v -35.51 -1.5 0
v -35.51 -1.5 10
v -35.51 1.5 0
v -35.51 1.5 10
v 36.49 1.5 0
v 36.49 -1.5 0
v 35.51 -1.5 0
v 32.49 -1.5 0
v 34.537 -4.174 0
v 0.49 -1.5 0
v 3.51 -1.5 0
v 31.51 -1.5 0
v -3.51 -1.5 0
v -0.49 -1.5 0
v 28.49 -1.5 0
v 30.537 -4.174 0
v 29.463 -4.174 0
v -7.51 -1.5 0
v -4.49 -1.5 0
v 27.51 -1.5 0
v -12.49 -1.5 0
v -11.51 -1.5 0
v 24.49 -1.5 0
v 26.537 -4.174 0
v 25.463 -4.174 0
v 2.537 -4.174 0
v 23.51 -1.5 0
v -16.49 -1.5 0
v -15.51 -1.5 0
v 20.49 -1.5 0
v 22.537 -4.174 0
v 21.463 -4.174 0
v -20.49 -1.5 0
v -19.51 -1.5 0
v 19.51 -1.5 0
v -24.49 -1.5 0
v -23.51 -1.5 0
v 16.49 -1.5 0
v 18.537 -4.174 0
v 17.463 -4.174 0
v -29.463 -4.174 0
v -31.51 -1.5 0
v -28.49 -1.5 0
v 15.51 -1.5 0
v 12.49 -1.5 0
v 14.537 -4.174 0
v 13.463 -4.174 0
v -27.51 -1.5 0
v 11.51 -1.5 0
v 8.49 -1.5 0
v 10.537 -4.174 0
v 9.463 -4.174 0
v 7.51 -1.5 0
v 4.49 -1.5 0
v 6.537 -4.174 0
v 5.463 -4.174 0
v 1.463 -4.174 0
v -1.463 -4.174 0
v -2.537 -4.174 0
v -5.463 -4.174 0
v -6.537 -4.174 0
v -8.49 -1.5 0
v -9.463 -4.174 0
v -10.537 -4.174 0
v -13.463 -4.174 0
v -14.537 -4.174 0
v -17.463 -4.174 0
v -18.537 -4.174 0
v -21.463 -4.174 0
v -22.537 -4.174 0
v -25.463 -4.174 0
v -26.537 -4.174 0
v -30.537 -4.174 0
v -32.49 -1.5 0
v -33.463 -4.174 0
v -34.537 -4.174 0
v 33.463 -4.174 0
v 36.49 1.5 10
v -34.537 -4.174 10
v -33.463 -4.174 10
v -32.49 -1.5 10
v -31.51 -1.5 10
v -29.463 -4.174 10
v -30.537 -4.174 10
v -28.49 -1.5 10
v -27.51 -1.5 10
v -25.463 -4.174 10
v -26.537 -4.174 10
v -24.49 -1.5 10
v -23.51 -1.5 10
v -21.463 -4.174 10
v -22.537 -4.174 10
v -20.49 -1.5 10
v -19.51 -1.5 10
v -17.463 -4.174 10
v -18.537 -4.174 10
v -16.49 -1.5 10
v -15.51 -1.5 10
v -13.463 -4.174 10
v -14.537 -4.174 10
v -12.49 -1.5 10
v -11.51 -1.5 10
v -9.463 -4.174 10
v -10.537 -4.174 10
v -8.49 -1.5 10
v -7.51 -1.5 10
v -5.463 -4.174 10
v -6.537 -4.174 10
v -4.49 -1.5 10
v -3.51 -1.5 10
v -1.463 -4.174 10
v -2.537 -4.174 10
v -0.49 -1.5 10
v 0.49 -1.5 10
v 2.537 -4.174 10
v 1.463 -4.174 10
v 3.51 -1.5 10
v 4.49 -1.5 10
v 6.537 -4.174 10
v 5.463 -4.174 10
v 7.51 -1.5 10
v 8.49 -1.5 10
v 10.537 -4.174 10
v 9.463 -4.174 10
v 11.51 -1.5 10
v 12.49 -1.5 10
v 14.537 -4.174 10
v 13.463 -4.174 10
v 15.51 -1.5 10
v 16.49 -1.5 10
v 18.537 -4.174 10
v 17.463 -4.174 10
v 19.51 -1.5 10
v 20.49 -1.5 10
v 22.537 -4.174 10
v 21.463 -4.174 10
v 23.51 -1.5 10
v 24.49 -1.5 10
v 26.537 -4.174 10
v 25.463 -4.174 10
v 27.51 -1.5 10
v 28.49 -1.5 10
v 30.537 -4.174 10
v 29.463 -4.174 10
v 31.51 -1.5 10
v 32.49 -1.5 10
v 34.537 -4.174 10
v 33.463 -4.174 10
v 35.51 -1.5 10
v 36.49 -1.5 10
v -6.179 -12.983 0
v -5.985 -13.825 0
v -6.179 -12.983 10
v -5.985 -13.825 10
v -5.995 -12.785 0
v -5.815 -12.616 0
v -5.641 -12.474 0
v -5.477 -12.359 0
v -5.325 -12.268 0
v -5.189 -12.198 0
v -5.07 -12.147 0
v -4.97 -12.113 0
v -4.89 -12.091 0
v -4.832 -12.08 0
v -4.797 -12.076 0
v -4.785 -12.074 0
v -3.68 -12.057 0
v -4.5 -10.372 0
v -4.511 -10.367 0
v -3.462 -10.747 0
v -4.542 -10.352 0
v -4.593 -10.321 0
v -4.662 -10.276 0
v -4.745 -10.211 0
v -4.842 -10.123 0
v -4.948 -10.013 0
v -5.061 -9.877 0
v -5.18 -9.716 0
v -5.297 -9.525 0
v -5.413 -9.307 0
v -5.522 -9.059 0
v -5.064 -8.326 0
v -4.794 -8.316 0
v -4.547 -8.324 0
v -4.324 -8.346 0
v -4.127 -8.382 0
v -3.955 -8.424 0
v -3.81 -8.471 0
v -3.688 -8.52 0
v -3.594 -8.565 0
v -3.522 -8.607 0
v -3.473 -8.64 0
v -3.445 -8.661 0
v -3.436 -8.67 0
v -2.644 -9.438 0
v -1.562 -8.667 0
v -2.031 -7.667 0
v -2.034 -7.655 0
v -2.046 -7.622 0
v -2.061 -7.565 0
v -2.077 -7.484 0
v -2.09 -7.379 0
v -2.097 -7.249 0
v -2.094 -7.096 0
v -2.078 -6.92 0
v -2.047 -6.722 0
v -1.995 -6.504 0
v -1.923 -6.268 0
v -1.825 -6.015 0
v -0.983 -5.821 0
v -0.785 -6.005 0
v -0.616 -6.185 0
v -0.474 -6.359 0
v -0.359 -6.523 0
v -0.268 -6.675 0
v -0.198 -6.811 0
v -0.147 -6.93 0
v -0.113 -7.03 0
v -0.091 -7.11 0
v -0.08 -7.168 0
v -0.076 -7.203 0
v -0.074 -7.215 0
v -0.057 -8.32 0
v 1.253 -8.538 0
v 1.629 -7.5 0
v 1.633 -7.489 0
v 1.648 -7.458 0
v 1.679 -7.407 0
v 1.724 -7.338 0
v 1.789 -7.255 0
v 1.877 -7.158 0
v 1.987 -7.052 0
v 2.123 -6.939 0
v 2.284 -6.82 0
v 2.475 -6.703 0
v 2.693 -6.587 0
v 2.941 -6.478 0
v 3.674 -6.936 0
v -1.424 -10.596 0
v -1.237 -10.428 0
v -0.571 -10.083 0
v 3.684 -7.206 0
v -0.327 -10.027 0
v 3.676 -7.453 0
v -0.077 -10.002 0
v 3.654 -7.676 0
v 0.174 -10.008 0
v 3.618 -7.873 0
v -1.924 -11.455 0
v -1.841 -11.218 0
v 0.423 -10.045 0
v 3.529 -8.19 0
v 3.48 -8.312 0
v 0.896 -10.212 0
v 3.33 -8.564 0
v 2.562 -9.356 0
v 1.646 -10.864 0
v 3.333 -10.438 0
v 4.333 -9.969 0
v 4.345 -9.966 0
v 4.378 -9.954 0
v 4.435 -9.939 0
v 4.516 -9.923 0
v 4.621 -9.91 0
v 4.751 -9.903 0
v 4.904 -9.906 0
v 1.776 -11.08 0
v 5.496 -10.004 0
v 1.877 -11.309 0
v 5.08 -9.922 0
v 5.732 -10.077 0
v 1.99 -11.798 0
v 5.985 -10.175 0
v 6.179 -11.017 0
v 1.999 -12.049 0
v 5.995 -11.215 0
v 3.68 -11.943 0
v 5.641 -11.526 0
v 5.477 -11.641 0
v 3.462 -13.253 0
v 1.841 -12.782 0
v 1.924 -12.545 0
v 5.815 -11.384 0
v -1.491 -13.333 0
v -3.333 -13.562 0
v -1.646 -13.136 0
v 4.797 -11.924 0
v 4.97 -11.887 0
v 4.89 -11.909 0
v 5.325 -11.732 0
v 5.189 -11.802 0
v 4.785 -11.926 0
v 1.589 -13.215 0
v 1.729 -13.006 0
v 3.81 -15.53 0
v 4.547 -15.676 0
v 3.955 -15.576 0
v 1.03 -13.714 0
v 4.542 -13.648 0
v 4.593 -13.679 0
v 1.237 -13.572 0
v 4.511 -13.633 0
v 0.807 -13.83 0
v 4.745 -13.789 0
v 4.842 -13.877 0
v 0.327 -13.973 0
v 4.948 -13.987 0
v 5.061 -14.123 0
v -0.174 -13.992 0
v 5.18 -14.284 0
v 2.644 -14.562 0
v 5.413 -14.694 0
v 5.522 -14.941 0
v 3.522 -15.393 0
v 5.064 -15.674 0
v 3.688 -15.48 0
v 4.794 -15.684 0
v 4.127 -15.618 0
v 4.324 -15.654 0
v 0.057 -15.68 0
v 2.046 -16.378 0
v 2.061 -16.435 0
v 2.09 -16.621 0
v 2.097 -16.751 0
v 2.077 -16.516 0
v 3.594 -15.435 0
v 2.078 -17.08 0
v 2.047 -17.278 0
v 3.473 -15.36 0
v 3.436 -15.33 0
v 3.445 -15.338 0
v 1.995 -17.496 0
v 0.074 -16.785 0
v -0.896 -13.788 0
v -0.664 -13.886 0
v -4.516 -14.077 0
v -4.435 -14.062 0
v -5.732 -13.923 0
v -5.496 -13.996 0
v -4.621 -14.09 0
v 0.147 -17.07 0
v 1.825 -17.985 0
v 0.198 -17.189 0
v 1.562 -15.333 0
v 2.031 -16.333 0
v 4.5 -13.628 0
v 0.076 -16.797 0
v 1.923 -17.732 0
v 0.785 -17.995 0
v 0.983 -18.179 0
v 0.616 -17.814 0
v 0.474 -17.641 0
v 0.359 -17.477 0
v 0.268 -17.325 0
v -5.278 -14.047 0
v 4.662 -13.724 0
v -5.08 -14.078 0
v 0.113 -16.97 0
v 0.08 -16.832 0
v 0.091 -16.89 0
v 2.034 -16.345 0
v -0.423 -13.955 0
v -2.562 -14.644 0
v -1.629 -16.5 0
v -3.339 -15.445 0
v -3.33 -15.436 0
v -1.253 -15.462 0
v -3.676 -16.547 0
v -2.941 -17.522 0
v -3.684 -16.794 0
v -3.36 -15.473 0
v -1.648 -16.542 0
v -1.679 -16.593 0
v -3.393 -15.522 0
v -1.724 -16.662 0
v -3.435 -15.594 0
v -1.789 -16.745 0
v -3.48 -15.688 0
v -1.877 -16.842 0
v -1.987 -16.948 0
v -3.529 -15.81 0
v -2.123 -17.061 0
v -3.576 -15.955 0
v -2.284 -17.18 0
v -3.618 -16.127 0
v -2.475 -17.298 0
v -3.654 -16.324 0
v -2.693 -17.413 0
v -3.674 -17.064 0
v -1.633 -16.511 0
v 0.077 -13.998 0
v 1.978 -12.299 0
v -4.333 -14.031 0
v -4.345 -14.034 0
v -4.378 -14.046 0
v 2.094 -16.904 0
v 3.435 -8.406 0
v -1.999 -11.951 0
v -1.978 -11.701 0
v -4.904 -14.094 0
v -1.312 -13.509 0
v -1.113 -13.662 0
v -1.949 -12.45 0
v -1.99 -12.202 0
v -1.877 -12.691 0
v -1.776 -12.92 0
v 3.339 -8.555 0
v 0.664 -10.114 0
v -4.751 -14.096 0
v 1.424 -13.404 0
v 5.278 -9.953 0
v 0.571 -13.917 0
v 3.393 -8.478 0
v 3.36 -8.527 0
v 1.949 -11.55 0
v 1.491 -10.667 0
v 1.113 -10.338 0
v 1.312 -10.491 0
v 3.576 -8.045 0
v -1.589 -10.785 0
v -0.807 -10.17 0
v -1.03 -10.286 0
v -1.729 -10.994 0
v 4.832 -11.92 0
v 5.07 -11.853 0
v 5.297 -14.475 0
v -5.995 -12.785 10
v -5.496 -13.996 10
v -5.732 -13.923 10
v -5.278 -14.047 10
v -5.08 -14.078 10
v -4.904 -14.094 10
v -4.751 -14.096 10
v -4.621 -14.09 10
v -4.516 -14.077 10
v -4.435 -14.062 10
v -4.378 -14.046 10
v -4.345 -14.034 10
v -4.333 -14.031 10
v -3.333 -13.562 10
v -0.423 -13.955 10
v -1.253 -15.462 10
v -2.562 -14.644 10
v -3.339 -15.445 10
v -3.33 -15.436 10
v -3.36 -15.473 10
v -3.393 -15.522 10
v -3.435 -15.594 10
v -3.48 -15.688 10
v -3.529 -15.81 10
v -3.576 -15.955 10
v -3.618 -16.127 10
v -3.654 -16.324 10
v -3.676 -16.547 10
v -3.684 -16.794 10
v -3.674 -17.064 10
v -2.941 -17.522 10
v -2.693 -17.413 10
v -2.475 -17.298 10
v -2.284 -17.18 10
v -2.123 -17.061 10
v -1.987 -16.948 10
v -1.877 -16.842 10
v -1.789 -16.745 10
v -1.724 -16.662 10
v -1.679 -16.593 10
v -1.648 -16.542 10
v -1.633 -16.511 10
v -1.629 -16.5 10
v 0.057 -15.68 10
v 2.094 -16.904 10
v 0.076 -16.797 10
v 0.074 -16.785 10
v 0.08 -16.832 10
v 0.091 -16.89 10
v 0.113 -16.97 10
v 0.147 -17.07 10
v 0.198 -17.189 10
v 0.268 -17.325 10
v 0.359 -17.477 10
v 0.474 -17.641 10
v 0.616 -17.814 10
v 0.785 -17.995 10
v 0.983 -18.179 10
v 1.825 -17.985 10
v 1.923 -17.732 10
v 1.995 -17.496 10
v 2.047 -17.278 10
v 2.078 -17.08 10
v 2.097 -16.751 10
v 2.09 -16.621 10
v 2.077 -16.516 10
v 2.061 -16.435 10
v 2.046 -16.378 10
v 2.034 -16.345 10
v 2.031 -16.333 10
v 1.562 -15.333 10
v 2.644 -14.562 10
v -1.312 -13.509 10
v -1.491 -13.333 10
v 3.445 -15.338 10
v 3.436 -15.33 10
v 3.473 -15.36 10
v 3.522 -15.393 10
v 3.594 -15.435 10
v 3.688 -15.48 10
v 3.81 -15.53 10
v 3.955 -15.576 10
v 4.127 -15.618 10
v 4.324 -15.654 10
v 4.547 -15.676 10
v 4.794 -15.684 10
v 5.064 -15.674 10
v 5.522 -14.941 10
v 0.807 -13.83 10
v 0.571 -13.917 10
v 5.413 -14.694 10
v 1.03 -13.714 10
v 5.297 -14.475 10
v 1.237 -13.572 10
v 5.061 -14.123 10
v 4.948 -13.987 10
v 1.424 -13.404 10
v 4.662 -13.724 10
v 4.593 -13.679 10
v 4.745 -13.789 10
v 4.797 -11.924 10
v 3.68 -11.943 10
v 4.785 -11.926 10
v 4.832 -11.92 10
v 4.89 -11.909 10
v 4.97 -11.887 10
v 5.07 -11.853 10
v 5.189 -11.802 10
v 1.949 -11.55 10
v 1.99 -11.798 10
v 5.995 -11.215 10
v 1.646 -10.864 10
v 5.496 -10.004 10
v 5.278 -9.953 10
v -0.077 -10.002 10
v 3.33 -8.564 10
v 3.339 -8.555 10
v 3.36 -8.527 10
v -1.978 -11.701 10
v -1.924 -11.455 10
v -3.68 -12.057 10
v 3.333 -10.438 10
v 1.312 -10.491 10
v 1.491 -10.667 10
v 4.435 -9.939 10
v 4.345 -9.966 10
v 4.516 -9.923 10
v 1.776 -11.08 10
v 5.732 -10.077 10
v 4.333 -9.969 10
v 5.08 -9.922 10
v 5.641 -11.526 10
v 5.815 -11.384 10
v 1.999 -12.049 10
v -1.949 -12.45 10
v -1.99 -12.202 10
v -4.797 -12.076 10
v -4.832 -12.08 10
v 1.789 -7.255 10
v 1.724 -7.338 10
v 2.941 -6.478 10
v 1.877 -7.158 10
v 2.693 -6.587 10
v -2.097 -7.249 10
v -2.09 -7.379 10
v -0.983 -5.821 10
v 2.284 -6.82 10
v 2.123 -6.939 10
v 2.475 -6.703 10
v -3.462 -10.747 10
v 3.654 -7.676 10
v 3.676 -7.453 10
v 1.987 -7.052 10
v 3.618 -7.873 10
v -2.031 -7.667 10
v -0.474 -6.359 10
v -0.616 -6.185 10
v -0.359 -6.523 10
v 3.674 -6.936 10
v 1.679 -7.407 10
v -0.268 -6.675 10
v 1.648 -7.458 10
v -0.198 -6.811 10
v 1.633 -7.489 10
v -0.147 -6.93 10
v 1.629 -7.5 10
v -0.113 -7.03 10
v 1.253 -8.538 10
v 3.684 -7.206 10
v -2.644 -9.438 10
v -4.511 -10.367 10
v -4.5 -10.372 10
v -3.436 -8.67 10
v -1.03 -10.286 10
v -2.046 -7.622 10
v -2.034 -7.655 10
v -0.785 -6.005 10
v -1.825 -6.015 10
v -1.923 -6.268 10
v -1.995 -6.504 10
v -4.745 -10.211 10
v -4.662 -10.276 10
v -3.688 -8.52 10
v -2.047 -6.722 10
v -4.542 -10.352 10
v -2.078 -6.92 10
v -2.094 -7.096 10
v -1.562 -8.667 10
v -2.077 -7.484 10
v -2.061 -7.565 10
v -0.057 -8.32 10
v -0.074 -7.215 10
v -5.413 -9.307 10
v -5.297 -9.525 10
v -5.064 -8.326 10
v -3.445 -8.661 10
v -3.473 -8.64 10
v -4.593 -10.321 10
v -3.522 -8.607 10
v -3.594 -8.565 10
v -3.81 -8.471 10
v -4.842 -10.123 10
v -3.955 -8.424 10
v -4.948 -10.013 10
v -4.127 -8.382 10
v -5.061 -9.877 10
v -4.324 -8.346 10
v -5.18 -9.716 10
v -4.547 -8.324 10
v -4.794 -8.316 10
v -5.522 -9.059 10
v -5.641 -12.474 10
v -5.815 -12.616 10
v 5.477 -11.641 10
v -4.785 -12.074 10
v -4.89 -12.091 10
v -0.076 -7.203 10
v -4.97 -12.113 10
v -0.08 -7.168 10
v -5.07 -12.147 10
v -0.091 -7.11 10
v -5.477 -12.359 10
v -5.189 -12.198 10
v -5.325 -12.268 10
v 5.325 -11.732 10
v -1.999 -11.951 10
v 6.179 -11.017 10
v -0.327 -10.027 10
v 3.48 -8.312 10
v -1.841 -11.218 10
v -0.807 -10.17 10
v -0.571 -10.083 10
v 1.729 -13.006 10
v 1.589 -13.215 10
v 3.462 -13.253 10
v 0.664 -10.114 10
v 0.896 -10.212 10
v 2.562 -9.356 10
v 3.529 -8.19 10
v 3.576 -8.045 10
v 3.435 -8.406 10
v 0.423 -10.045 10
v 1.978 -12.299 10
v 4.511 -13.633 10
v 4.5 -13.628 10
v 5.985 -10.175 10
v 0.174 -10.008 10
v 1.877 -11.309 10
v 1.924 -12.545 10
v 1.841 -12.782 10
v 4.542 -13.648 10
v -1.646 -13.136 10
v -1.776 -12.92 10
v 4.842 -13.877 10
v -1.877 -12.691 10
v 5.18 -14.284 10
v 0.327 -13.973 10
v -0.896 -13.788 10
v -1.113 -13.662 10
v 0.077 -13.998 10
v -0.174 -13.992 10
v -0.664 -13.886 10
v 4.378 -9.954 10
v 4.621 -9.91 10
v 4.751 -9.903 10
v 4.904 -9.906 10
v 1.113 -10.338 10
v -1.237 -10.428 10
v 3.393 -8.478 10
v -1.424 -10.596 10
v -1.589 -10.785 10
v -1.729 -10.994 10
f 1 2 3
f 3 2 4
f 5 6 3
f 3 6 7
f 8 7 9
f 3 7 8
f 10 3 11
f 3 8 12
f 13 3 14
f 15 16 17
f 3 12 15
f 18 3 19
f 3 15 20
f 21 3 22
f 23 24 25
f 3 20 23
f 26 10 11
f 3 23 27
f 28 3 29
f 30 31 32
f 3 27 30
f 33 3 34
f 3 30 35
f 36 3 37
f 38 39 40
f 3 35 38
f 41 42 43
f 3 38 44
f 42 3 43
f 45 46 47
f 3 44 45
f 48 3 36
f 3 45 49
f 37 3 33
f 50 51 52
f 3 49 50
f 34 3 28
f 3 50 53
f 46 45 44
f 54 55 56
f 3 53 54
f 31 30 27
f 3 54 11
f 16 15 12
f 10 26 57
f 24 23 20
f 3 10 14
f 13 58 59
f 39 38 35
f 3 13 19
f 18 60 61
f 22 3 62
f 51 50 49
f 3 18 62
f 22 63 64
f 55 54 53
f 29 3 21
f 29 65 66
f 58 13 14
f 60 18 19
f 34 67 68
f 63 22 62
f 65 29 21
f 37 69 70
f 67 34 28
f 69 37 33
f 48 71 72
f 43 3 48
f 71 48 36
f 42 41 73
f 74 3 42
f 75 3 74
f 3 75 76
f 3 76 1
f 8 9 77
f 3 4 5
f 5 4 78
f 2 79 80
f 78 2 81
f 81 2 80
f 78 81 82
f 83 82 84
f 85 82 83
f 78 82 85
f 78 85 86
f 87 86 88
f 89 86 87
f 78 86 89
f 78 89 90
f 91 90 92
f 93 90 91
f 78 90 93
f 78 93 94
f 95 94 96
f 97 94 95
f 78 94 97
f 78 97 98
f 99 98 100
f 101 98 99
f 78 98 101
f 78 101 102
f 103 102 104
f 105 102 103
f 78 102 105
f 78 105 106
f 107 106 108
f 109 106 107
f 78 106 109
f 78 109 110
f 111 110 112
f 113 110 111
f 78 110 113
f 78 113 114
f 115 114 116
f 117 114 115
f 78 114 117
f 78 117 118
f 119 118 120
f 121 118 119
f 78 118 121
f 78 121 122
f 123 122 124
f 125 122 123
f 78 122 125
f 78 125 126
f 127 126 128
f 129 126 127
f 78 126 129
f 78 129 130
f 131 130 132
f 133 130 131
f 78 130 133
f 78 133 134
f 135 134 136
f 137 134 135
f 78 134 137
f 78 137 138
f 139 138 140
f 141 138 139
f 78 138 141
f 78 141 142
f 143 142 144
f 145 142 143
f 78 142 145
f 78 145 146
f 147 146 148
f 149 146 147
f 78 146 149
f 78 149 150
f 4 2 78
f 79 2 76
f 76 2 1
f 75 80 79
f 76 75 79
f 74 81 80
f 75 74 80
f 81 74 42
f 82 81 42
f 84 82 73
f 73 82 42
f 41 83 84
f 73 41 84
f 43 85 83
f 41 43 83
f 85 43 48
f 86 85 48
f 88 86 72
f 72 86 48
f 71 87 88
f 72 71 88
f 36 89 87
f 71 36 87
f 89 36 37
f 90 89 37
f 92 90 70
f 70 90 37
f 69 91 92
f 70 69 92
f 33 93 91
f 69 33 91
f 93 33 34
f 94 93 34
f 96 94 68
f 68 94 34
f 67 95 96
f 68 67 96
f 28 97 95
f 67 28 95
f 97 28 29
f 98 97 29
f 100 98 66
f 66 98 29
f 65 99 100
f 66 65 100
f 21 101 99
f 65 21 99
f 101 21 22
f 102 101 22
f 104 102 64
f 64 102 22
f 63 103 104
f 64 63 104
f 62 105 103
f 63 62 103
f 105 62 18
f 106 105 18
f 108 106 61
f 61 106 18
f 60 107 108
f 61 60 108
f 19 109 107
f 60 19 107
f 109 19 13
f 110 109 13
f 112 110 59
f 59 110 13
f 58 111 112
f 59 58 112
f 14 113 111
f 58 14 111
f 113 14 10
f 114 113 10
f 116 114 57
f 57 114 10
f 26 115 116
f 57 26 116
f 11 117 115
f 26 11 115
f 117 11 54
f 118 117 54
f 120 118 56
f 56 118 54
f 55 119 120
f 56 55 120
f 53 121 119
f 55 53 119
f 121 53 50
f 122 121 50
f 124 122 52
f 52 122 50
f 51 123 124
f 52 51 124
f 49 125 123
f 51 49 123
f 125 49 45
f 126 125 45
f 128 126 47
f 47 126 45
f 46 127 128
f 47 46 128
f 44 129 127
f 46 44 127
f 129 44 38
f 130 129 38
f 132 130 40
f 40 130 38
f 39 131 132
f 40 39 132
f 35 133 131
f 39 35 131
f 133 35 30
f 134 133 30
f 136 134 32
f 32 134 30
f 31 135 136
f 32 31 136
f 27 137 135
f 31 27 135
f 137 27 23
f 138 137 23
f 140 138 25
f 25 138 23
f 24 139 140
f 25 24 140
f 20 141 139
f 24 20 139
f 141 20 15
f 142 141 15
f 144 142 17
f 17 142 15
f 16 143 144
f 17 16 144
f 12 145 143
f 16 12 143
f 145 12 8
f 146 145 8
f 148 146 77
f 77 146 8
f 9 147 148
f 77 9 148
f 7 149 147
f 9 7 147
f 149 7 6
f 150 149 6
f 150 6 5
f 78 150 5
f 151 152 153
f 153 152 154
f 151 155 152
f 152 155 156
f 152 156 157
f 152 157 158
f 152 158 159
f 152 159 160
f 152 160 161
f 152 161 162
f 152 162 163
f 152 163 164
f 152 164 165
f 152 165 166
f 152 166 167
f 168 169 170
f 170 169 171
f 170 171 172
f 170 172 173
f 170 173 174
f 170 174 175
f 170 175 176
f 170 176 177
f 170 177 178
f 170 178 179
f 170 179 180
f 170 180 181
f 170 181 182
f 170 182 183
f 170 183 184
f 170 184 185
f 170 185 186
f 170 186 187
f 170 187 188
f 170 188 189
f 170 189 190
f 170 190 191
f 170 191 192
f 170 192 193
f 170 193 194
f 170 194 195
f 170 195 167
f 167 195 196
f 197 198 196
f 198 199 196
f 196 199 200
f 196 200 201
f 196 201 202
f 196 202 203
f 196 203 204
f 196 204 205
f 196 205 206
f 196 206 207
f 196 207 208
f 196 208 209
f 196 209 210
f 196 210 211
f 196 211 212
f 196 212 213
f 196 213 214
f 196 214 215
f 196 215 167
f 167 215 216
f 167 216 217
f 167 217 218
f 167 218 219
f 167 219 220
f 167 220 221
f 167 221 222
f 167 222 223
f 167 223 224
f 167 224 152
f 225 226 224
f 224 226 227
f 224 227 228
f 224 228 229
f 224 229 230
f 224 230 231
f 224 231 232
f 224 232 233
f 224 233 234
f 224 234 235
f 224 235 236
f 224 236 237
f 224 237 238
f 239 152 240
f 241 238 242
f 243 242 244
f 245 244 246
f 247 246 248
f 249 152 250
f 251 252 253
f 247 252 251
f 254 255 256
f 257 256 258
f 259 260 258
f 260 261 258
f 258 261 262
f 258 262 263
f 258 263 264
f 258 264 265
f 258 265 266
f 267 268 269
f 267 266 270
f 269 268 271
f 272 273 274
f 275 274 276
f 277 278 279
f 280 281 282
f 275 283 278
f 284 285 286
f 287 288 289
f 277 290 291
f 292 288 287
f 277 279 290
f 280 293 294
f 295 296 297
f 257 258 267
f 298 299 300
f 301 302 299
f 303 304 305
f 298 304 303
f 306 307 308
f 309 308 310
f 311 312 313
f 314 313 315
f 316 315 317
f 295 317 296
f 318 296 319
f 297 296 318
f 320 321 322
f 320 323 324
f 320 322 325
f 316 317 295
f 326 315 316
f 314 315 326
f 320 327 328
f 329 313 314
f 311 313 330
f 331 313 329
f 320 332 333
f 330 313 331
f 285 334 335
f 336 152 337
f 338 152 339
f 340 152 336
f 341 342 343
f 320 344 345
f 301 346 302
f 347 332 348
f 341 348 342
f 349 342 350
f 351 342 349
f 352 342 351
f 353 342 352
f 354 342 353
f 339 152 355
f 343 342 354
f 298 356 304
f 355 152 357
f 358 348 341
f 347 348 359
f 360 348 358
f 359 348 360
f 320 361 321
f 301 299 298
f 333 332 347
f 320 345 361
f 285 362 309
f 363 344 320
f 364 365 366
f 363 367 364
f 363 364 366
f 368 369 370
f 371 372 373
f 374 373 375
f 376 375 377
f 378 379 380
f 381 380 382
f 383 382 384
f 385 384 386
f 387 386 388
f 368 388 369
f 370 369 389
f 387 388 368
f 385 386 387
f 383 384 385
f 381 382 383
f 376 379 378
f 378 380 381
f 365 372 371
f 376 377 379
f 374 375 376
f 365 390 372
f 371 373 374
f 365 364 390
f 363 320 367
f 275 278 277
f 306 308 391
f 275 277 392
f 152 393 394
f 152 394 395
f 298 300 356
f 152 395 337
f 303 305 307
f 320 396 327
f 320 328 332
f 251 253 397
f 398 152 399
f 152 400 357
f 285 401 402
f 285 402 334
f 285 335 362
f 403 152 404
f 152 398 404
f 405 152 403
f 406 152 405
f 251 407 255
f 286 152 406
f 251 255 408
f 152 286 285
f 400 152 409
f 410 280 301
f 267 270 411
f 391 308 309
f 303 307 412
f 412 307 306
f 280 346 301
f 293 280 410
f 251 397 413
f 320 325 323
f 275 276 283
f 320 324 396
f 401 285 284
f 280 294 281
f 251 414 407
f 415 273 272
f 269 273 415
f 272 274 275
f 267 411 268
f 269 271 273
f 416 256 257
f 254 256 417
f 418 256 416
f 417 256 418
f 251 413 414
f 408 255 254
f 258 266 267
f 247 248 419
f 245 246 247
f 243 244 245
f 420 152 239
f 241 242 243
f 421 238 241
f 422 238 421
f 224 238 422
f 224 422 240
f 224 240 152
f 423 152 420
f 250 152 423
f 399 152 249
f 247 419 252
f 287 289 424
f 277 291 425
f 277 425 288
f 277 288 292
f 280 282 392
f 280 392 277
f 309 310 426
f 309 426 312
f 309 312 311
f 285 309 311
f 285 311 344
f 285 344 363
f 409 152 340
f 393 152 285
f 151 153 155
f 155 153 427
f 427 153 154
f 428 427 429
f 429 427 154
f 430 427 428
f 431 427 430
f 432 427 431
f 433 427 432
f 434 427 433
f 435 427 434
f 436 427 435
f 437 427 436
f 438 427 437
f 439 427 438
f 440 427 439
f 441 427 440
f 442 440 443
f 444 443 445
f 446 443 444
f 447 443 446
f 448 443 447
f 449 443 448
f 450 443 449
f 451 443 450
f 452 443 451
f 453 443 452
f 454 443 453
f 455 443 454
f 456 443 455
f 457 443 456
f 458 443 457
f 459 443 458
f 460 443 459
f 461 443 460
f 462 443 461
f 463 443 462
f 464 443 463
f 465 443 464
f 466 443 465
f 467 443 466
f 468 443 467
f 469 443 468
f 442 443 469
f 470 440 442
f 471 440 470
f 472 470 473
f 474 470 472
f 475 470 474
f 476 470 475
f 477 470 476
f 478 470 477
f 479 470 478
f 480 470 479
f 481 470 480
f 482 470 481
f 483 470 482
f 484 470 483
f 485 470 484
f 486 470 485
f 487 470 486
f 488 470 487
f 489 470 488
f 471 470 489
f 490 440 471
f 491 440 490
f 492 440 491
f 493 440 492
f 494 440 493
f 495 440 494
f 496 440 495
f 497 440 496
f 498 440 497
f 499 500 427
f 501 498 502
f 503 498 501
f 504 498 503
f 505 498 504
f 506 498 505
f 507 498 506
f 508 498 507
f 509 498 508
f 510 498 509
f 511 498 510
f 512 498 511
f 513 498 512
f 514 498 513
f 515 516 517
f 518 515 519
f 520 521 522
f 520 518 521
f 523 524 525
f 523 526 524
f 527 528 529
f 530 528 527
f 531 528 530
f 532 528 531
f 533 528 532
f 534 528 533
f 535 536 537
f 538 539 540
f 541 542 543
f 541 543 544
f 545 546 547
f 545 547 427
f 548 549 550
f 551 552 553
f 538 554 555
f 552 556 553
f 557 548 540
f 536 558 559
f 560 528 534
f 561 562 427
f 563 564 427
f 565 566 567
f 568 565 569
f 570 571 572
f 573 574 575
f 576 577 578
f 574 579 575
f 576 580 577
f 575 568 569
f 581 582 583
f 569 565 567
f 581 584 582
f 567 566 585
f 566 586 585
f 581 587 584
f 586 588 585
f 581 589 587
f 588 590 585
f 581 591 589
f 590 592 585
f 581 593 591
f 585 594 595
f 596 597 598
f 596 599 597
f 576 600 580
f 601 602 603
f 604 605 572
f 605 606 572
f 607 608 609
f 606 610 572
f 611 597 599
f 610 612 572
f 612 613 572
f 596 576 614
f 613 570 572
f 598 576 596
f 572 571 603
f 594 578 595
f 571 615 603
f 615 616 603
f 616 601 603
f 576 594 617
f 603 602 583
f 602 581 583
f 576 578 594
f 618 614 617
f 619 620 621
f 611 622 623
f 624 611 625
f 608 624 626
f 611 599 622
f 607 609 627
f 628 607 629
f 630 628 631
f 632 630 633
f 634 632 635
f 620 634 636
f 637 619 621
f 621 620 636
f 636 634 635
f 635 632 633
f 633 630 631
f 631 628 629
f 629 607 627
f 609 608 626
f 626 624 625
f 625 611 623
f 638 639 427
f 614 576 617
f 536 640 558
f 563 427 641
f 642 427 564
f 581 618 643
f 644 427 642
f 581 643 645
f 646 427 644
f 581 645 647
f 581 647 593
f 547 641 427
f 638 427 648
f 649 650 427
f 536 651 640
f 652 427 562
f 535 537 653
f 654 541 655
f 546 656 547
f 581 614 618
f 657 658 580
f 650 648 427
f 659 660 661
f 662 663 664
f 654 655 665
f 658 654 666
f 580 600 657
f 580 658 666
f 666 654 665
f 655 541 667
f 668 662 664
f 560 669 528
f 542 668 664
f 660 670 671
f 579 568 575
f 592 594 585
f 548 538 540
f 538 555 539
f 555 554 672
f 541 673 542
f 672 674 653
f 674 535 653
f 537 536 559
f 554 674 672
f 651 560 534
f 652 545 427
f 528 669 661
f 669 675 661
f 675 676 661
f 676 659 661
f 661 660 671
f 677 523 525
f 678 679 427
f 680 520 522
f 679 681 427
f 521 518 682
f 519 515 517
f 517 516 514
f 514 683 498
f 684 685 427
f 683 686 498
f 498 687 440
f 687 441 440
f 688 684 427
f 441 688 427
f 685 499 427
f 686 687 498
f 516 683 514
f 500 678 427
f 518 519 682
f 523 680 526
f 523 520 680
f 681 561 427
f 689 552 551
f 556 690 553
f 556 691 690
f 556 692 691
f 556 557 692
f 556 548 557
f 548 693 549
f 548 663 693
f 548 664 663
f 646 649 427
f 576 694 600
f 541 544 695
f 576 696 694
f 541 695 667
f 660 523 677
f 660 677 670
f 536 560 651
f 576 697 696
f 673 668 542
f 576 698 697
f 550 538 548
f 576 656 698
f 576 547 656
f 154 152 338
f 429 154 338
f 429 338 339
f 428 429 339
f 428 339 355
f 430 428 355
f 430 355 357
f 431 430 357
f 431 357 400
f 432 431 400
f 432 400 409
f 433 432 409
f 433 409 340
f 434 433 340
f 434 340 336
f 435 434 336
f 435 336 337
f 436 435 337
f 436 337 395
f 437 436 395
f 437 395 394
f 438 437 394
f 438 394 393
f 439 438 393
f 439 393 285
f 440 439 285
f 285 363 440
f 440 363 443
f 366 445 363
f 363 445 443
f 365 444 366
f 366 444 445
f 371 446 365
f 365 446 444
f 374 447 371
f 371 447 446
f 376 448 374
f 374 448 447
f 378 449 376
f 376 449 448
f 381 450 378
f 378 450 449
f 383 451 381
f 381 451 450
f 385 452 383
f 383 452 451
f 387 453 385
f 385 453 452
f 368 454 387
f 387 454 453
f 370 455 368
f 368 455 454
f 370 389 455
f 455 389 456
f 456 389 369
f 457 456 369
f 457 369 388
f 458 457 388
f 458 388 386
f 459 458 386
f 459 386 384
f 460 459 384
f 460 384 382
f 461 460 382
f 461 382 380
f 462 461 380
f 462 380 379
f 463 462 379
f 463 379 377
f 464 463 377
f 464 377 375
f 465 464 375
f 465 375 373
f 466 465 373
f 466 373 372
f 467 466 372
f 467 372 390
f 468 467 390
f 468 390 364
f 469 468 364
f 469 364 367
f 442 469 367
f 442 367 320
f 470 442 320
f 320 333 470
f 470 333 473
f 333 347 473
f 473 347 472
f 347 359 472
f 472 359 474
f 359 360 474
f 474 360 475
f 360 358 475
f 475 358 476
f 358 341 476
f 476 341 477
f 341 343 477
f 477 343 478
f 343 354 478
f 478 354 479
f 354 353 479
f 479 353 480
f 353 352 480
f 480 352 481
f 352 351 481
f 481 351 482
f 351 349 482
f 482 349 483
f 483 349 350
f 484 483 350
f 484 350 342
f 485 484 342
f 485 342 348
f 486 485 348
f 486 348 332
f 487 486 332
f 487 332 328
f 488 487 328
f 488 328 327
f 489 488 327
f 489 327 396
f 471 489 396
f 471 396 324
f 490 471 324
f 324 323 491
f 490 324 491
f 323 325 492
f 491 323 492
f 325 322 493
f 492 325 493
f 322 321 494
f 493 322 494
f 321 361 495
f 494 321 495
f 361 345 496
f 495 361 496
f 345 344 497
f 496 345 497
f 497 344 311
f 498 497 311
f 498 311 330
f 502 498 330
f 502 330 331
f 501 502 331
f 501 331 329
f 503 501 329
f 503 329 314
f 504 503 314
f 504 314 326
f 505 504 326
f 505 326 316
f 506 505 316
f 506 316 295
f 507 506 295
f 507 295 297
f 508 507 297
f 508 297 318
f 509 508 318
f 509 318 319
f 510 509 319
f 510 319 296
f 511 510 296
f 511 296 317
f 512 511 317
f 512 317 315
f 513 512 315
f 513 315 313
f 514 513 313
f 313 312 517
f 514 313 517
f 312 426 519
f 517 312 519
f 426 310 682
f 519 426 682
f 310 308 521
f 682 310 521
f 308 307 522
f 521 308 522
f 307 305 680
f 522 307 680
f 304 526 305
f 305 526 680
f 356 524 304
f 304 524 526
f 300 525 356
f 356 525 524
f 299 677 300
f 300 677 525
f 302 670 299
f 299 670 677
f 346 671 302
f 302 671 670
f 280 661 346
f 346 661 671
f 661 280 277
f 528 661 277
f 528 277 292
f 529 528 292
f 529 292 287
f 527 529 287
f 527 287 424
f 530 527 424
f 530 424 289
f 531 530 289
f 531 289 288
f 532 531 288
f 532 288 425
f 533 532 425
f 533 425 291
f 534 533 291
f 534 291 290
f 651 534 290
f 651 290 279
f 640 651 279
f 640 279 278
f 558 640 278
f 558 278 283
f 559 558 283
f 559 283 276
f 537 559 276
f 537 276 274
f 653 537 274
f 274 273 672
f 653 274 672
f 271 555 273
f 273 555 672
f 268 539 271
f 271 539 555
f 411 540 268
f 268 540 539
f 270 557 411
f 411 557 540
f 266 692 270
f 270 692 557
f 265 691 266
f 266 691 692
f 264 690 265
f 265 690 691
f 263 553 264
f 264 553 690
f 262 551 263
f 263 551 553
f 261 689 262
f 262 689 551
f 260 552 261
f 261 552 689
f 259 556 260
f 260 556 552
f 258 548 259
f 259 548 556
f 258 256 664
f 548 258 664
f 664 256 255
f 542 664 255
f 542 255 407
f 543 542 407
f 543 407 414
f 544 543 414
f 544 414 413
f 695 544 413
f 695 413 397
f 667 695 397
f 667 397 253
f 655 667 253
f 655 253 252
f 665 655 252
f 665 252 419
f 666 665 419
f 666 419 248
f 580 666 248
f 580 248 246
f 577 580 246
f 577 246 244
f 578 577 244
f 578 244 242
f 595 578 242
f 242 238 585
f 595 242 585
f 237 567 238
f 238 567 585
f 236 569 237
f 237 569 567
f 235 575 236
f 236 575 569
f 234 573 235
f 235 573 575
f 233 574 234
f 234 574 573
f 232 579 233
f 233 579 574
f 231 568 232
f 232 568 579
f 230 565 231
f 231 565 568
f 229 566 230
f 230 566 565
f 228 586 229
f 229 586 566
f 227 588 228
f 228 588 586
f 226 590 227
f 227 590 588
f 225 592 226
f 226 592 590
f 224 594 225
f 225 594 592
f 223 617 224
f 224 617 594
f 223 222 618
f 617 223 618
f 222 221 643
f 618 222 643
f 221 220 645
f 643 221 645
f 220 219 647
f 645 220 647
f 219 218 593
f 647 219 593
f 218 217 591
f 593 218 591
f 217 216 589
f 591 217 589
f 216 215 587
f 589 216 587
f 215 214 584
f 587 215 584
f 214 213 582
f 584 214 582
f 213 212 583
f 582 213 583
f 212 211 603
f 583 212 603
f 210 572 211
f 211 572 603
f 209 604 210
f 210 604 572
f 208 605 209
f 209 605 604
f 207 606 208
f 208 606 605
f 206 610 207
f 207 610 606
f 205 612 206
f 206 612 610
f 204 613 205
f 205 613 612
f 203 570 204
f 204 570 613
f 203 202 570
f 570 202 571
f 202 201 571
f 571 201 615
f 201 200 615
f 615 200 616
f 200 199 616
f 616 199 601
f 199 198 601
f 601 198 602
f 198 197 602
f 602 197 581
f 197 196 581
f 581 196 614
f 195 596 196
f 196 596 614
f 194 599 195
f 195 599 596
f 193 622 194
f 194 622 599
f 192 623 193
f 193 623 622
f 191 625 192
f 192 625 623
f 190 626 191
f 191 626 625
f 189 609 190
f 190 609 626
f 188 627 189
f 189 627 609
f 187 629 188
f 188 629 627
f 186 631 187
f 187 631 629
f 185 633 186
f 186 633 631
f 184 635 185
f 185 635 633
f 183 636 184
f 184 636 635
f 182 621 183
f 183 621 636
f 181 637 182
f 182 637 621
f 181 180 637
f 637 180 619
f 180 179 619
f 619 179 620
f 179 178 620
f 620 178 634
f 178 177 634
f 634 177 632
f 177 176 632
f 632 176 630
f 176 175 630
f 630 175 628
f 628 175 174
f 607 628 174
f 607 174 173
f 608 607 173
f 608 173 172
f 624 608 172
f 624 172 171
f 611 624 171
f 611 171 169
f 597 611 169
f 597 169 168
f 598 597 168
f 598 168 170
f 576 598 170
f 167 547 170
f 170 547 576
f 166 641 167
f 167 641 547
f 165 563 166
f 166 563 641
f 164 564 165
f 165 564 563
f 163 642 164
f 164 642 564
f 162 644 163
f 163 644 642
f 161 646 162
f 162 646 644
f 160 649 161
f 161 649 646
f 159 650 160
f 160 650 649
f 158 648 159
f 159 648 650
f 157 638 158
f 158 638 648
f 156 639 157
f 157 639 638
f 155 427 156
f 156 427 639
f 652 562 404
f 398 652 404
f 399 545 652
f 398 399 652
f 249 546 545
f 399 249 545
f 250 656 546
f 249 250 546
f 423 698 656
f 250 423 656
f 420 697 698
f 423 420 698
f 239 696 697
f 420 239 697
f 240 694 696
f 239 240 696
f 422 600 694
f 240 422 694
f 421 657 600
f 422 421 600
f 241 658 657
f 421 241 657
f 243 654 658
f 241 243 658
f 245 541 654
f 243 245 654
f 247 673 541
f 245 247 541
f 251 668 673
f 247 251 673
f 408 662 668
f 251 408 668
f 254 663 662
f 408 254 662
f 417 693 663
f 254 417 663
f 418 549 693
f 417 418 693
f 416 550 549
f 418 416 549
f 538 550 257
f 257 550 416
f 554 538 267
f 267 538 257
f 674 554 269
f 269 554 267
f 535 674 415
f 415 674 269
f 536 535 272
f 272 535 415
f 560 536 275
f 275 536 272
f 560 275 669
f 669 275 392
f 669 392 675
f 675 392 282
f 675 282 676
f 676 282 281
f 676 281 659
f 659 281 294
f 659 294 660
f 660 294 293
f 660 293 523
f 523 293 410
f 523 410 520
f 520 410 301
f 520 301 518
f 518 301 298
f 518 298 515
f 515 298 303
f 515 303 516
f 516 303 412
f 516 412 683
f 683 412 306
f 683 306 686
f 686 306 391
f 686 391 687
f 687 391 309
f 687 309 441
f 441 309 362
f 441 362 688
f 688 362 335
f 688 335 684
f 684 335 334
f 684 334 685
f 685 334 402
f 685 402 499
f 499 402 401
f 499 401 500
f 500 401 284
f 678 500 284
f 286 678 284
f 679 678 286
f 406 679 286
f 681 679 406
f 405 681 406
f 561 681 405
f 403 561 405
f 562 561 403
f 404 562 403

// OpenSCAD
// Rack and pinion gears GPL (c) SASA October 2013.
//
// Very simple rack and pinion gear based on GPL code.
//
// I've made corrections to both rack and gear code I used (below) and unified
// and simplified both bits of code.  Corrects the use of circular pitch so
// rack and pinion match nicely.  Ammendments to the code and interface to
// simplify use and improve readability. Many bells and whistles dropped in
// favour of being dead simple.  I also opted for hard wiring the pressure
// angle to 20 degrees since this seemed a kind of standard.
//
// Based on the works (thanks!): Parametric Involute Bevel and Spur Gears by
// GregFrost GNU GPL license.  http://www.thingiverse.com/thing:3575 Parametric
// Modular Rack by Mark "Ckaos" Moissette GNU GPL license.  (Rack based on the
// work of MattMoses and Fdavies
// http://forums.reprap.org/read.php?1,51452,52099#msg-52099 and Forrest Higgs:
// 
// The originals have many fine additions such as helical gears which I've
// dropped in favour of simplicity (as befits my needs) - it wouldn't be a big
// jobs to nobble my changes backwards or their features forwards.

pi=3.1415926535897932384626433832795;
$fn=50;

// examples of usage
// include this in your code:
// use <rack_and_pinion.scad>
// then:
// a simple rack
// rack(4,20,10,1);//CP (mm/tooth), width (teeth), thickness(of base) (mm), # teeth
// a simple pinion and translation / rotation to make it mesh the rack
// translate([0,-8.5,0])rotate([0,0,360/10/2]) pinion(4,10,10,5);


rack (4,18,10,3);

translate([0,-12,0]) rotate([0,0,13]) pinion(4,8,10,4);


module rack(cp, N, width, thickness){
// cp = circular pitch - for rack = pitch in mm/per tooth
// N = number of teeth
// width = width of rack in teeth
// thickness = thickness of support under teeth (0 for no support)

	a = 1.0*cp/pi; // addendum (also known as "module")
	d = 1.1*cp/pi; // dedendum (this is set by a standard)
	height=(d+a);

	// find the tangent of pressure angle once
	tanPA = tan(20);
	// length of bottom and top horizontal segments of tooth profile
	botL = (cp/2 - 2*d*tanPA);
	topL = (cp/2 - 2*a*tanPA);

	slantLng=tanPA*height;
	realBase=2*slantLng+topL;

	offset=topL+botL+2*slantLng;
	length=(realBase+botL)*N;

	supportSize=width;
	translate([botL/2,0,0])
	rotate([90,0,0]){
		translate([0,supportSize/2,0]){
			union(){
				cube(size=[length,width,thickness],center=true);
				for (i = [0:N-1]){
					translate([i*offset-length/2+realBase/2,0,thickness/2]){
						trapezoid([topL,supportSize],[realBase,supportSize],height);
						}
					}
				}
			}
		}
	}

module pinion (cp, N, width, shaft_diameter, backlash=0){
// cp= circular pitch - for pinion pitch in mm/per as measured along the ptich radius (~1/2 way up tooth)
// N= number of teeth
// width= width of the gear
// shaft_diameter= diameter of hole for shaft
// backlash - I think this is just a bodge for making things fit when printed but I never tested it

	if (cp==false && diametral_pitch==false) 
		echo("MCAD ERROR: pinion module needs either a diametral_pitch or cp");

	//Convert diametrial pitch to our native circular pitch
	cp = (cp!=false?cp:180/diametral_pitch);

	// Pitch diameter: Diameter of pitch circle.
	pitch_diameter  =  N * cp / pi;
	pitch_radius = pitch_diameter/2;
	echo ("Teeth:", N, " Pitch radius:", pitch_radius);
	// Base Circle
	base_radius = pitch_radius*cos(20);

	// Addendum: Radial distance from pitch circle to outside circle.
	addendum = cp/pi;

	//Outer Circle
	outer_radius = pitch_radius+addendum;

	// Dedendum: Radial distance from pitch circle to root diameter
	dedendum = addendum*1.1;

	// Root diameter: Diameter of bottom of tooth spaces.
	root_radius = pitch_radius-dedendum;

	backlash_angle = backlash / pitch_radius * 180 / pi;
	half_thick_angle = (360 / N - backlash_angle) / 4;

	difference(){
		linear_extrude (height=width, convexity=10, twist=0)
		pinion_shape(N, pitch_radius = pitch_radius, root_radius = root_radius,
			base_radius = base_radius, outer_radius = outer_radius,
			half_thick_angle = half_thick_angle, involute_facets=0);

		translate([0,0,-1]) cylinder(r=shaft_diameter/2,h=2+width);
		}

	echo("Root radius =",root_radius,"\nPitch radius=",pitch_radius,"\n Tip radius=",outer_radius,"\n");
	}

module pinion_shape ( N, pitch_radius, root_radius, base_radius, outer_radius, half_thick_angle, involute_facets) {
	union(){
		rotate (half_thick_angle) circle ($fn=N*2, r=root_radius);
		for (i = [1:N]) {
			rotate ([0,0,i*360/N]) {
				involute_pinion_tooth (
					pitch_radius = pitch_radius,
					root_radius = root_radius,
					base_radius = base_radius,
					outer_radius = outer_radius,
					half_thick_angle = half_thick_angle,
					involute_facets=involute_facets);
				}
			}
		}
	}

module involute_pinion_tooth ( pitch_radius, root_radius, base_radius, outer_radius, half_thick_angle, involute_facets) {
	min_radius = max (base_radius,root_radius);

	pitch_point = involute (base_radius, involute_intersect_angle (base_radius, pitch_radius));
	pitch_angle = atan2 (pitch_point[1], pitch_point[0]);
	centre_angle = pitch_angle + half_thick_angle;

	start_angle = involute_intersect_angle (base_radius, min_radius);
	stop_angle = involute_intersect_angle (base_radius, outer_radius);

	res=(involute_facets!=0)?involute_facets:($fn==0)?5:$fn/4;

	union () {
		for (i=[1:res])
		assign ( point1=involute (base_radius,start_angle+(stop_angle - start_angle)*(i-1)/res), point2=involute (base_radius,start_angle+(stop_angle - start_angle)*i/res)) {
			assign (
				side1_point1=rotate_point (centre_angle, point1),
				side1_point2=rotate_point (centre_angle, point2),
				side2_point1=mirror_point (rotate_point (centre_angle, point1)),
				side2_point2=mirror_point (rotate_point (centre_angle, point2))) {
				polygon ( points=[[0,0],side1_point1,side1_point2,side2_point2,side2_point1], paths=[[0,1,2,3,4,0]]);
				}
			}
		}
	}

// Mathematical Functions
//===============

// Finds the angle of the involute about the base radius at the given distance (radius) from it's center.
//source: http://www.mathhelpforum.com/math-help/geometry/136011-circle-involute-solving-y-any-given-x.html

function involute_intersect_angle (base_radius, radius) = sqrt (pow (radius/base_radius, 2) - 1) * 180 / pi;

// Calculate the involute position for a given base radius and involute angle.

function rotated_involute(rotate,base_radius,involute_angle)=[cos(rotate)*involute(base_radius, involute_angle)[0]+sin(rotate)*involute(base_radius, involute_angle)[1],cos(rotate)*involute(base_radius, involute_angle)[1]-sin(rotate)*involute(base_radius, involute_angle)[0]];

function mirror_point(coord)=[coord[0],-coord[1]];

function rotate_point(rotate,coord)=[cos(rotate)*coord[0]+sin(rotate)*coord[1],cos(rotate)*coord[1]-sin(rotate)*coord[0]];

function involute (base_radius, involute_angle)=[base_radius*(cos(involute_angle)+involute_angle*pi/180*sin(involute_angle)),base_radius*(sin(involute_angle)-involute_angle*pi/180*cos(involute_angle))];




module trapezoid(top,base,height){
	//echo ("test",base[0]);
	basePT1=[ -base[0]/2, base[1]/2, 0];
	basePT2=[ base[0]/2, base[1]/2, 0];
	basePT3=[ base[0]/2, -base[1]/2, 0];
	basePT4=[ -base[0]/2, -base[1]/2, 0];
	topPT1=[ -top[0]/2, top[1]/2, height];
	topPT2=[ top[0]/2, top[1]/2, height];
	topPT3=[ top[0]/2, -top[1]/2, height];
	topPT4=[ -top[0]/2, -top[1]/2, height];
	polyhedron(points=[ basePT1, basePT2, basePT3, basePT4, topPT1, topPT2, topPT3, topPT4],triangles=[[0,1,2], [0,2,3],[3,7,0], [7,4,0],[1,6,2], [1,5,6],[2,6,3], [3,6,7],[5,1,0],[4,5,0],[7,5,4],[5,7,6]]);
	}
